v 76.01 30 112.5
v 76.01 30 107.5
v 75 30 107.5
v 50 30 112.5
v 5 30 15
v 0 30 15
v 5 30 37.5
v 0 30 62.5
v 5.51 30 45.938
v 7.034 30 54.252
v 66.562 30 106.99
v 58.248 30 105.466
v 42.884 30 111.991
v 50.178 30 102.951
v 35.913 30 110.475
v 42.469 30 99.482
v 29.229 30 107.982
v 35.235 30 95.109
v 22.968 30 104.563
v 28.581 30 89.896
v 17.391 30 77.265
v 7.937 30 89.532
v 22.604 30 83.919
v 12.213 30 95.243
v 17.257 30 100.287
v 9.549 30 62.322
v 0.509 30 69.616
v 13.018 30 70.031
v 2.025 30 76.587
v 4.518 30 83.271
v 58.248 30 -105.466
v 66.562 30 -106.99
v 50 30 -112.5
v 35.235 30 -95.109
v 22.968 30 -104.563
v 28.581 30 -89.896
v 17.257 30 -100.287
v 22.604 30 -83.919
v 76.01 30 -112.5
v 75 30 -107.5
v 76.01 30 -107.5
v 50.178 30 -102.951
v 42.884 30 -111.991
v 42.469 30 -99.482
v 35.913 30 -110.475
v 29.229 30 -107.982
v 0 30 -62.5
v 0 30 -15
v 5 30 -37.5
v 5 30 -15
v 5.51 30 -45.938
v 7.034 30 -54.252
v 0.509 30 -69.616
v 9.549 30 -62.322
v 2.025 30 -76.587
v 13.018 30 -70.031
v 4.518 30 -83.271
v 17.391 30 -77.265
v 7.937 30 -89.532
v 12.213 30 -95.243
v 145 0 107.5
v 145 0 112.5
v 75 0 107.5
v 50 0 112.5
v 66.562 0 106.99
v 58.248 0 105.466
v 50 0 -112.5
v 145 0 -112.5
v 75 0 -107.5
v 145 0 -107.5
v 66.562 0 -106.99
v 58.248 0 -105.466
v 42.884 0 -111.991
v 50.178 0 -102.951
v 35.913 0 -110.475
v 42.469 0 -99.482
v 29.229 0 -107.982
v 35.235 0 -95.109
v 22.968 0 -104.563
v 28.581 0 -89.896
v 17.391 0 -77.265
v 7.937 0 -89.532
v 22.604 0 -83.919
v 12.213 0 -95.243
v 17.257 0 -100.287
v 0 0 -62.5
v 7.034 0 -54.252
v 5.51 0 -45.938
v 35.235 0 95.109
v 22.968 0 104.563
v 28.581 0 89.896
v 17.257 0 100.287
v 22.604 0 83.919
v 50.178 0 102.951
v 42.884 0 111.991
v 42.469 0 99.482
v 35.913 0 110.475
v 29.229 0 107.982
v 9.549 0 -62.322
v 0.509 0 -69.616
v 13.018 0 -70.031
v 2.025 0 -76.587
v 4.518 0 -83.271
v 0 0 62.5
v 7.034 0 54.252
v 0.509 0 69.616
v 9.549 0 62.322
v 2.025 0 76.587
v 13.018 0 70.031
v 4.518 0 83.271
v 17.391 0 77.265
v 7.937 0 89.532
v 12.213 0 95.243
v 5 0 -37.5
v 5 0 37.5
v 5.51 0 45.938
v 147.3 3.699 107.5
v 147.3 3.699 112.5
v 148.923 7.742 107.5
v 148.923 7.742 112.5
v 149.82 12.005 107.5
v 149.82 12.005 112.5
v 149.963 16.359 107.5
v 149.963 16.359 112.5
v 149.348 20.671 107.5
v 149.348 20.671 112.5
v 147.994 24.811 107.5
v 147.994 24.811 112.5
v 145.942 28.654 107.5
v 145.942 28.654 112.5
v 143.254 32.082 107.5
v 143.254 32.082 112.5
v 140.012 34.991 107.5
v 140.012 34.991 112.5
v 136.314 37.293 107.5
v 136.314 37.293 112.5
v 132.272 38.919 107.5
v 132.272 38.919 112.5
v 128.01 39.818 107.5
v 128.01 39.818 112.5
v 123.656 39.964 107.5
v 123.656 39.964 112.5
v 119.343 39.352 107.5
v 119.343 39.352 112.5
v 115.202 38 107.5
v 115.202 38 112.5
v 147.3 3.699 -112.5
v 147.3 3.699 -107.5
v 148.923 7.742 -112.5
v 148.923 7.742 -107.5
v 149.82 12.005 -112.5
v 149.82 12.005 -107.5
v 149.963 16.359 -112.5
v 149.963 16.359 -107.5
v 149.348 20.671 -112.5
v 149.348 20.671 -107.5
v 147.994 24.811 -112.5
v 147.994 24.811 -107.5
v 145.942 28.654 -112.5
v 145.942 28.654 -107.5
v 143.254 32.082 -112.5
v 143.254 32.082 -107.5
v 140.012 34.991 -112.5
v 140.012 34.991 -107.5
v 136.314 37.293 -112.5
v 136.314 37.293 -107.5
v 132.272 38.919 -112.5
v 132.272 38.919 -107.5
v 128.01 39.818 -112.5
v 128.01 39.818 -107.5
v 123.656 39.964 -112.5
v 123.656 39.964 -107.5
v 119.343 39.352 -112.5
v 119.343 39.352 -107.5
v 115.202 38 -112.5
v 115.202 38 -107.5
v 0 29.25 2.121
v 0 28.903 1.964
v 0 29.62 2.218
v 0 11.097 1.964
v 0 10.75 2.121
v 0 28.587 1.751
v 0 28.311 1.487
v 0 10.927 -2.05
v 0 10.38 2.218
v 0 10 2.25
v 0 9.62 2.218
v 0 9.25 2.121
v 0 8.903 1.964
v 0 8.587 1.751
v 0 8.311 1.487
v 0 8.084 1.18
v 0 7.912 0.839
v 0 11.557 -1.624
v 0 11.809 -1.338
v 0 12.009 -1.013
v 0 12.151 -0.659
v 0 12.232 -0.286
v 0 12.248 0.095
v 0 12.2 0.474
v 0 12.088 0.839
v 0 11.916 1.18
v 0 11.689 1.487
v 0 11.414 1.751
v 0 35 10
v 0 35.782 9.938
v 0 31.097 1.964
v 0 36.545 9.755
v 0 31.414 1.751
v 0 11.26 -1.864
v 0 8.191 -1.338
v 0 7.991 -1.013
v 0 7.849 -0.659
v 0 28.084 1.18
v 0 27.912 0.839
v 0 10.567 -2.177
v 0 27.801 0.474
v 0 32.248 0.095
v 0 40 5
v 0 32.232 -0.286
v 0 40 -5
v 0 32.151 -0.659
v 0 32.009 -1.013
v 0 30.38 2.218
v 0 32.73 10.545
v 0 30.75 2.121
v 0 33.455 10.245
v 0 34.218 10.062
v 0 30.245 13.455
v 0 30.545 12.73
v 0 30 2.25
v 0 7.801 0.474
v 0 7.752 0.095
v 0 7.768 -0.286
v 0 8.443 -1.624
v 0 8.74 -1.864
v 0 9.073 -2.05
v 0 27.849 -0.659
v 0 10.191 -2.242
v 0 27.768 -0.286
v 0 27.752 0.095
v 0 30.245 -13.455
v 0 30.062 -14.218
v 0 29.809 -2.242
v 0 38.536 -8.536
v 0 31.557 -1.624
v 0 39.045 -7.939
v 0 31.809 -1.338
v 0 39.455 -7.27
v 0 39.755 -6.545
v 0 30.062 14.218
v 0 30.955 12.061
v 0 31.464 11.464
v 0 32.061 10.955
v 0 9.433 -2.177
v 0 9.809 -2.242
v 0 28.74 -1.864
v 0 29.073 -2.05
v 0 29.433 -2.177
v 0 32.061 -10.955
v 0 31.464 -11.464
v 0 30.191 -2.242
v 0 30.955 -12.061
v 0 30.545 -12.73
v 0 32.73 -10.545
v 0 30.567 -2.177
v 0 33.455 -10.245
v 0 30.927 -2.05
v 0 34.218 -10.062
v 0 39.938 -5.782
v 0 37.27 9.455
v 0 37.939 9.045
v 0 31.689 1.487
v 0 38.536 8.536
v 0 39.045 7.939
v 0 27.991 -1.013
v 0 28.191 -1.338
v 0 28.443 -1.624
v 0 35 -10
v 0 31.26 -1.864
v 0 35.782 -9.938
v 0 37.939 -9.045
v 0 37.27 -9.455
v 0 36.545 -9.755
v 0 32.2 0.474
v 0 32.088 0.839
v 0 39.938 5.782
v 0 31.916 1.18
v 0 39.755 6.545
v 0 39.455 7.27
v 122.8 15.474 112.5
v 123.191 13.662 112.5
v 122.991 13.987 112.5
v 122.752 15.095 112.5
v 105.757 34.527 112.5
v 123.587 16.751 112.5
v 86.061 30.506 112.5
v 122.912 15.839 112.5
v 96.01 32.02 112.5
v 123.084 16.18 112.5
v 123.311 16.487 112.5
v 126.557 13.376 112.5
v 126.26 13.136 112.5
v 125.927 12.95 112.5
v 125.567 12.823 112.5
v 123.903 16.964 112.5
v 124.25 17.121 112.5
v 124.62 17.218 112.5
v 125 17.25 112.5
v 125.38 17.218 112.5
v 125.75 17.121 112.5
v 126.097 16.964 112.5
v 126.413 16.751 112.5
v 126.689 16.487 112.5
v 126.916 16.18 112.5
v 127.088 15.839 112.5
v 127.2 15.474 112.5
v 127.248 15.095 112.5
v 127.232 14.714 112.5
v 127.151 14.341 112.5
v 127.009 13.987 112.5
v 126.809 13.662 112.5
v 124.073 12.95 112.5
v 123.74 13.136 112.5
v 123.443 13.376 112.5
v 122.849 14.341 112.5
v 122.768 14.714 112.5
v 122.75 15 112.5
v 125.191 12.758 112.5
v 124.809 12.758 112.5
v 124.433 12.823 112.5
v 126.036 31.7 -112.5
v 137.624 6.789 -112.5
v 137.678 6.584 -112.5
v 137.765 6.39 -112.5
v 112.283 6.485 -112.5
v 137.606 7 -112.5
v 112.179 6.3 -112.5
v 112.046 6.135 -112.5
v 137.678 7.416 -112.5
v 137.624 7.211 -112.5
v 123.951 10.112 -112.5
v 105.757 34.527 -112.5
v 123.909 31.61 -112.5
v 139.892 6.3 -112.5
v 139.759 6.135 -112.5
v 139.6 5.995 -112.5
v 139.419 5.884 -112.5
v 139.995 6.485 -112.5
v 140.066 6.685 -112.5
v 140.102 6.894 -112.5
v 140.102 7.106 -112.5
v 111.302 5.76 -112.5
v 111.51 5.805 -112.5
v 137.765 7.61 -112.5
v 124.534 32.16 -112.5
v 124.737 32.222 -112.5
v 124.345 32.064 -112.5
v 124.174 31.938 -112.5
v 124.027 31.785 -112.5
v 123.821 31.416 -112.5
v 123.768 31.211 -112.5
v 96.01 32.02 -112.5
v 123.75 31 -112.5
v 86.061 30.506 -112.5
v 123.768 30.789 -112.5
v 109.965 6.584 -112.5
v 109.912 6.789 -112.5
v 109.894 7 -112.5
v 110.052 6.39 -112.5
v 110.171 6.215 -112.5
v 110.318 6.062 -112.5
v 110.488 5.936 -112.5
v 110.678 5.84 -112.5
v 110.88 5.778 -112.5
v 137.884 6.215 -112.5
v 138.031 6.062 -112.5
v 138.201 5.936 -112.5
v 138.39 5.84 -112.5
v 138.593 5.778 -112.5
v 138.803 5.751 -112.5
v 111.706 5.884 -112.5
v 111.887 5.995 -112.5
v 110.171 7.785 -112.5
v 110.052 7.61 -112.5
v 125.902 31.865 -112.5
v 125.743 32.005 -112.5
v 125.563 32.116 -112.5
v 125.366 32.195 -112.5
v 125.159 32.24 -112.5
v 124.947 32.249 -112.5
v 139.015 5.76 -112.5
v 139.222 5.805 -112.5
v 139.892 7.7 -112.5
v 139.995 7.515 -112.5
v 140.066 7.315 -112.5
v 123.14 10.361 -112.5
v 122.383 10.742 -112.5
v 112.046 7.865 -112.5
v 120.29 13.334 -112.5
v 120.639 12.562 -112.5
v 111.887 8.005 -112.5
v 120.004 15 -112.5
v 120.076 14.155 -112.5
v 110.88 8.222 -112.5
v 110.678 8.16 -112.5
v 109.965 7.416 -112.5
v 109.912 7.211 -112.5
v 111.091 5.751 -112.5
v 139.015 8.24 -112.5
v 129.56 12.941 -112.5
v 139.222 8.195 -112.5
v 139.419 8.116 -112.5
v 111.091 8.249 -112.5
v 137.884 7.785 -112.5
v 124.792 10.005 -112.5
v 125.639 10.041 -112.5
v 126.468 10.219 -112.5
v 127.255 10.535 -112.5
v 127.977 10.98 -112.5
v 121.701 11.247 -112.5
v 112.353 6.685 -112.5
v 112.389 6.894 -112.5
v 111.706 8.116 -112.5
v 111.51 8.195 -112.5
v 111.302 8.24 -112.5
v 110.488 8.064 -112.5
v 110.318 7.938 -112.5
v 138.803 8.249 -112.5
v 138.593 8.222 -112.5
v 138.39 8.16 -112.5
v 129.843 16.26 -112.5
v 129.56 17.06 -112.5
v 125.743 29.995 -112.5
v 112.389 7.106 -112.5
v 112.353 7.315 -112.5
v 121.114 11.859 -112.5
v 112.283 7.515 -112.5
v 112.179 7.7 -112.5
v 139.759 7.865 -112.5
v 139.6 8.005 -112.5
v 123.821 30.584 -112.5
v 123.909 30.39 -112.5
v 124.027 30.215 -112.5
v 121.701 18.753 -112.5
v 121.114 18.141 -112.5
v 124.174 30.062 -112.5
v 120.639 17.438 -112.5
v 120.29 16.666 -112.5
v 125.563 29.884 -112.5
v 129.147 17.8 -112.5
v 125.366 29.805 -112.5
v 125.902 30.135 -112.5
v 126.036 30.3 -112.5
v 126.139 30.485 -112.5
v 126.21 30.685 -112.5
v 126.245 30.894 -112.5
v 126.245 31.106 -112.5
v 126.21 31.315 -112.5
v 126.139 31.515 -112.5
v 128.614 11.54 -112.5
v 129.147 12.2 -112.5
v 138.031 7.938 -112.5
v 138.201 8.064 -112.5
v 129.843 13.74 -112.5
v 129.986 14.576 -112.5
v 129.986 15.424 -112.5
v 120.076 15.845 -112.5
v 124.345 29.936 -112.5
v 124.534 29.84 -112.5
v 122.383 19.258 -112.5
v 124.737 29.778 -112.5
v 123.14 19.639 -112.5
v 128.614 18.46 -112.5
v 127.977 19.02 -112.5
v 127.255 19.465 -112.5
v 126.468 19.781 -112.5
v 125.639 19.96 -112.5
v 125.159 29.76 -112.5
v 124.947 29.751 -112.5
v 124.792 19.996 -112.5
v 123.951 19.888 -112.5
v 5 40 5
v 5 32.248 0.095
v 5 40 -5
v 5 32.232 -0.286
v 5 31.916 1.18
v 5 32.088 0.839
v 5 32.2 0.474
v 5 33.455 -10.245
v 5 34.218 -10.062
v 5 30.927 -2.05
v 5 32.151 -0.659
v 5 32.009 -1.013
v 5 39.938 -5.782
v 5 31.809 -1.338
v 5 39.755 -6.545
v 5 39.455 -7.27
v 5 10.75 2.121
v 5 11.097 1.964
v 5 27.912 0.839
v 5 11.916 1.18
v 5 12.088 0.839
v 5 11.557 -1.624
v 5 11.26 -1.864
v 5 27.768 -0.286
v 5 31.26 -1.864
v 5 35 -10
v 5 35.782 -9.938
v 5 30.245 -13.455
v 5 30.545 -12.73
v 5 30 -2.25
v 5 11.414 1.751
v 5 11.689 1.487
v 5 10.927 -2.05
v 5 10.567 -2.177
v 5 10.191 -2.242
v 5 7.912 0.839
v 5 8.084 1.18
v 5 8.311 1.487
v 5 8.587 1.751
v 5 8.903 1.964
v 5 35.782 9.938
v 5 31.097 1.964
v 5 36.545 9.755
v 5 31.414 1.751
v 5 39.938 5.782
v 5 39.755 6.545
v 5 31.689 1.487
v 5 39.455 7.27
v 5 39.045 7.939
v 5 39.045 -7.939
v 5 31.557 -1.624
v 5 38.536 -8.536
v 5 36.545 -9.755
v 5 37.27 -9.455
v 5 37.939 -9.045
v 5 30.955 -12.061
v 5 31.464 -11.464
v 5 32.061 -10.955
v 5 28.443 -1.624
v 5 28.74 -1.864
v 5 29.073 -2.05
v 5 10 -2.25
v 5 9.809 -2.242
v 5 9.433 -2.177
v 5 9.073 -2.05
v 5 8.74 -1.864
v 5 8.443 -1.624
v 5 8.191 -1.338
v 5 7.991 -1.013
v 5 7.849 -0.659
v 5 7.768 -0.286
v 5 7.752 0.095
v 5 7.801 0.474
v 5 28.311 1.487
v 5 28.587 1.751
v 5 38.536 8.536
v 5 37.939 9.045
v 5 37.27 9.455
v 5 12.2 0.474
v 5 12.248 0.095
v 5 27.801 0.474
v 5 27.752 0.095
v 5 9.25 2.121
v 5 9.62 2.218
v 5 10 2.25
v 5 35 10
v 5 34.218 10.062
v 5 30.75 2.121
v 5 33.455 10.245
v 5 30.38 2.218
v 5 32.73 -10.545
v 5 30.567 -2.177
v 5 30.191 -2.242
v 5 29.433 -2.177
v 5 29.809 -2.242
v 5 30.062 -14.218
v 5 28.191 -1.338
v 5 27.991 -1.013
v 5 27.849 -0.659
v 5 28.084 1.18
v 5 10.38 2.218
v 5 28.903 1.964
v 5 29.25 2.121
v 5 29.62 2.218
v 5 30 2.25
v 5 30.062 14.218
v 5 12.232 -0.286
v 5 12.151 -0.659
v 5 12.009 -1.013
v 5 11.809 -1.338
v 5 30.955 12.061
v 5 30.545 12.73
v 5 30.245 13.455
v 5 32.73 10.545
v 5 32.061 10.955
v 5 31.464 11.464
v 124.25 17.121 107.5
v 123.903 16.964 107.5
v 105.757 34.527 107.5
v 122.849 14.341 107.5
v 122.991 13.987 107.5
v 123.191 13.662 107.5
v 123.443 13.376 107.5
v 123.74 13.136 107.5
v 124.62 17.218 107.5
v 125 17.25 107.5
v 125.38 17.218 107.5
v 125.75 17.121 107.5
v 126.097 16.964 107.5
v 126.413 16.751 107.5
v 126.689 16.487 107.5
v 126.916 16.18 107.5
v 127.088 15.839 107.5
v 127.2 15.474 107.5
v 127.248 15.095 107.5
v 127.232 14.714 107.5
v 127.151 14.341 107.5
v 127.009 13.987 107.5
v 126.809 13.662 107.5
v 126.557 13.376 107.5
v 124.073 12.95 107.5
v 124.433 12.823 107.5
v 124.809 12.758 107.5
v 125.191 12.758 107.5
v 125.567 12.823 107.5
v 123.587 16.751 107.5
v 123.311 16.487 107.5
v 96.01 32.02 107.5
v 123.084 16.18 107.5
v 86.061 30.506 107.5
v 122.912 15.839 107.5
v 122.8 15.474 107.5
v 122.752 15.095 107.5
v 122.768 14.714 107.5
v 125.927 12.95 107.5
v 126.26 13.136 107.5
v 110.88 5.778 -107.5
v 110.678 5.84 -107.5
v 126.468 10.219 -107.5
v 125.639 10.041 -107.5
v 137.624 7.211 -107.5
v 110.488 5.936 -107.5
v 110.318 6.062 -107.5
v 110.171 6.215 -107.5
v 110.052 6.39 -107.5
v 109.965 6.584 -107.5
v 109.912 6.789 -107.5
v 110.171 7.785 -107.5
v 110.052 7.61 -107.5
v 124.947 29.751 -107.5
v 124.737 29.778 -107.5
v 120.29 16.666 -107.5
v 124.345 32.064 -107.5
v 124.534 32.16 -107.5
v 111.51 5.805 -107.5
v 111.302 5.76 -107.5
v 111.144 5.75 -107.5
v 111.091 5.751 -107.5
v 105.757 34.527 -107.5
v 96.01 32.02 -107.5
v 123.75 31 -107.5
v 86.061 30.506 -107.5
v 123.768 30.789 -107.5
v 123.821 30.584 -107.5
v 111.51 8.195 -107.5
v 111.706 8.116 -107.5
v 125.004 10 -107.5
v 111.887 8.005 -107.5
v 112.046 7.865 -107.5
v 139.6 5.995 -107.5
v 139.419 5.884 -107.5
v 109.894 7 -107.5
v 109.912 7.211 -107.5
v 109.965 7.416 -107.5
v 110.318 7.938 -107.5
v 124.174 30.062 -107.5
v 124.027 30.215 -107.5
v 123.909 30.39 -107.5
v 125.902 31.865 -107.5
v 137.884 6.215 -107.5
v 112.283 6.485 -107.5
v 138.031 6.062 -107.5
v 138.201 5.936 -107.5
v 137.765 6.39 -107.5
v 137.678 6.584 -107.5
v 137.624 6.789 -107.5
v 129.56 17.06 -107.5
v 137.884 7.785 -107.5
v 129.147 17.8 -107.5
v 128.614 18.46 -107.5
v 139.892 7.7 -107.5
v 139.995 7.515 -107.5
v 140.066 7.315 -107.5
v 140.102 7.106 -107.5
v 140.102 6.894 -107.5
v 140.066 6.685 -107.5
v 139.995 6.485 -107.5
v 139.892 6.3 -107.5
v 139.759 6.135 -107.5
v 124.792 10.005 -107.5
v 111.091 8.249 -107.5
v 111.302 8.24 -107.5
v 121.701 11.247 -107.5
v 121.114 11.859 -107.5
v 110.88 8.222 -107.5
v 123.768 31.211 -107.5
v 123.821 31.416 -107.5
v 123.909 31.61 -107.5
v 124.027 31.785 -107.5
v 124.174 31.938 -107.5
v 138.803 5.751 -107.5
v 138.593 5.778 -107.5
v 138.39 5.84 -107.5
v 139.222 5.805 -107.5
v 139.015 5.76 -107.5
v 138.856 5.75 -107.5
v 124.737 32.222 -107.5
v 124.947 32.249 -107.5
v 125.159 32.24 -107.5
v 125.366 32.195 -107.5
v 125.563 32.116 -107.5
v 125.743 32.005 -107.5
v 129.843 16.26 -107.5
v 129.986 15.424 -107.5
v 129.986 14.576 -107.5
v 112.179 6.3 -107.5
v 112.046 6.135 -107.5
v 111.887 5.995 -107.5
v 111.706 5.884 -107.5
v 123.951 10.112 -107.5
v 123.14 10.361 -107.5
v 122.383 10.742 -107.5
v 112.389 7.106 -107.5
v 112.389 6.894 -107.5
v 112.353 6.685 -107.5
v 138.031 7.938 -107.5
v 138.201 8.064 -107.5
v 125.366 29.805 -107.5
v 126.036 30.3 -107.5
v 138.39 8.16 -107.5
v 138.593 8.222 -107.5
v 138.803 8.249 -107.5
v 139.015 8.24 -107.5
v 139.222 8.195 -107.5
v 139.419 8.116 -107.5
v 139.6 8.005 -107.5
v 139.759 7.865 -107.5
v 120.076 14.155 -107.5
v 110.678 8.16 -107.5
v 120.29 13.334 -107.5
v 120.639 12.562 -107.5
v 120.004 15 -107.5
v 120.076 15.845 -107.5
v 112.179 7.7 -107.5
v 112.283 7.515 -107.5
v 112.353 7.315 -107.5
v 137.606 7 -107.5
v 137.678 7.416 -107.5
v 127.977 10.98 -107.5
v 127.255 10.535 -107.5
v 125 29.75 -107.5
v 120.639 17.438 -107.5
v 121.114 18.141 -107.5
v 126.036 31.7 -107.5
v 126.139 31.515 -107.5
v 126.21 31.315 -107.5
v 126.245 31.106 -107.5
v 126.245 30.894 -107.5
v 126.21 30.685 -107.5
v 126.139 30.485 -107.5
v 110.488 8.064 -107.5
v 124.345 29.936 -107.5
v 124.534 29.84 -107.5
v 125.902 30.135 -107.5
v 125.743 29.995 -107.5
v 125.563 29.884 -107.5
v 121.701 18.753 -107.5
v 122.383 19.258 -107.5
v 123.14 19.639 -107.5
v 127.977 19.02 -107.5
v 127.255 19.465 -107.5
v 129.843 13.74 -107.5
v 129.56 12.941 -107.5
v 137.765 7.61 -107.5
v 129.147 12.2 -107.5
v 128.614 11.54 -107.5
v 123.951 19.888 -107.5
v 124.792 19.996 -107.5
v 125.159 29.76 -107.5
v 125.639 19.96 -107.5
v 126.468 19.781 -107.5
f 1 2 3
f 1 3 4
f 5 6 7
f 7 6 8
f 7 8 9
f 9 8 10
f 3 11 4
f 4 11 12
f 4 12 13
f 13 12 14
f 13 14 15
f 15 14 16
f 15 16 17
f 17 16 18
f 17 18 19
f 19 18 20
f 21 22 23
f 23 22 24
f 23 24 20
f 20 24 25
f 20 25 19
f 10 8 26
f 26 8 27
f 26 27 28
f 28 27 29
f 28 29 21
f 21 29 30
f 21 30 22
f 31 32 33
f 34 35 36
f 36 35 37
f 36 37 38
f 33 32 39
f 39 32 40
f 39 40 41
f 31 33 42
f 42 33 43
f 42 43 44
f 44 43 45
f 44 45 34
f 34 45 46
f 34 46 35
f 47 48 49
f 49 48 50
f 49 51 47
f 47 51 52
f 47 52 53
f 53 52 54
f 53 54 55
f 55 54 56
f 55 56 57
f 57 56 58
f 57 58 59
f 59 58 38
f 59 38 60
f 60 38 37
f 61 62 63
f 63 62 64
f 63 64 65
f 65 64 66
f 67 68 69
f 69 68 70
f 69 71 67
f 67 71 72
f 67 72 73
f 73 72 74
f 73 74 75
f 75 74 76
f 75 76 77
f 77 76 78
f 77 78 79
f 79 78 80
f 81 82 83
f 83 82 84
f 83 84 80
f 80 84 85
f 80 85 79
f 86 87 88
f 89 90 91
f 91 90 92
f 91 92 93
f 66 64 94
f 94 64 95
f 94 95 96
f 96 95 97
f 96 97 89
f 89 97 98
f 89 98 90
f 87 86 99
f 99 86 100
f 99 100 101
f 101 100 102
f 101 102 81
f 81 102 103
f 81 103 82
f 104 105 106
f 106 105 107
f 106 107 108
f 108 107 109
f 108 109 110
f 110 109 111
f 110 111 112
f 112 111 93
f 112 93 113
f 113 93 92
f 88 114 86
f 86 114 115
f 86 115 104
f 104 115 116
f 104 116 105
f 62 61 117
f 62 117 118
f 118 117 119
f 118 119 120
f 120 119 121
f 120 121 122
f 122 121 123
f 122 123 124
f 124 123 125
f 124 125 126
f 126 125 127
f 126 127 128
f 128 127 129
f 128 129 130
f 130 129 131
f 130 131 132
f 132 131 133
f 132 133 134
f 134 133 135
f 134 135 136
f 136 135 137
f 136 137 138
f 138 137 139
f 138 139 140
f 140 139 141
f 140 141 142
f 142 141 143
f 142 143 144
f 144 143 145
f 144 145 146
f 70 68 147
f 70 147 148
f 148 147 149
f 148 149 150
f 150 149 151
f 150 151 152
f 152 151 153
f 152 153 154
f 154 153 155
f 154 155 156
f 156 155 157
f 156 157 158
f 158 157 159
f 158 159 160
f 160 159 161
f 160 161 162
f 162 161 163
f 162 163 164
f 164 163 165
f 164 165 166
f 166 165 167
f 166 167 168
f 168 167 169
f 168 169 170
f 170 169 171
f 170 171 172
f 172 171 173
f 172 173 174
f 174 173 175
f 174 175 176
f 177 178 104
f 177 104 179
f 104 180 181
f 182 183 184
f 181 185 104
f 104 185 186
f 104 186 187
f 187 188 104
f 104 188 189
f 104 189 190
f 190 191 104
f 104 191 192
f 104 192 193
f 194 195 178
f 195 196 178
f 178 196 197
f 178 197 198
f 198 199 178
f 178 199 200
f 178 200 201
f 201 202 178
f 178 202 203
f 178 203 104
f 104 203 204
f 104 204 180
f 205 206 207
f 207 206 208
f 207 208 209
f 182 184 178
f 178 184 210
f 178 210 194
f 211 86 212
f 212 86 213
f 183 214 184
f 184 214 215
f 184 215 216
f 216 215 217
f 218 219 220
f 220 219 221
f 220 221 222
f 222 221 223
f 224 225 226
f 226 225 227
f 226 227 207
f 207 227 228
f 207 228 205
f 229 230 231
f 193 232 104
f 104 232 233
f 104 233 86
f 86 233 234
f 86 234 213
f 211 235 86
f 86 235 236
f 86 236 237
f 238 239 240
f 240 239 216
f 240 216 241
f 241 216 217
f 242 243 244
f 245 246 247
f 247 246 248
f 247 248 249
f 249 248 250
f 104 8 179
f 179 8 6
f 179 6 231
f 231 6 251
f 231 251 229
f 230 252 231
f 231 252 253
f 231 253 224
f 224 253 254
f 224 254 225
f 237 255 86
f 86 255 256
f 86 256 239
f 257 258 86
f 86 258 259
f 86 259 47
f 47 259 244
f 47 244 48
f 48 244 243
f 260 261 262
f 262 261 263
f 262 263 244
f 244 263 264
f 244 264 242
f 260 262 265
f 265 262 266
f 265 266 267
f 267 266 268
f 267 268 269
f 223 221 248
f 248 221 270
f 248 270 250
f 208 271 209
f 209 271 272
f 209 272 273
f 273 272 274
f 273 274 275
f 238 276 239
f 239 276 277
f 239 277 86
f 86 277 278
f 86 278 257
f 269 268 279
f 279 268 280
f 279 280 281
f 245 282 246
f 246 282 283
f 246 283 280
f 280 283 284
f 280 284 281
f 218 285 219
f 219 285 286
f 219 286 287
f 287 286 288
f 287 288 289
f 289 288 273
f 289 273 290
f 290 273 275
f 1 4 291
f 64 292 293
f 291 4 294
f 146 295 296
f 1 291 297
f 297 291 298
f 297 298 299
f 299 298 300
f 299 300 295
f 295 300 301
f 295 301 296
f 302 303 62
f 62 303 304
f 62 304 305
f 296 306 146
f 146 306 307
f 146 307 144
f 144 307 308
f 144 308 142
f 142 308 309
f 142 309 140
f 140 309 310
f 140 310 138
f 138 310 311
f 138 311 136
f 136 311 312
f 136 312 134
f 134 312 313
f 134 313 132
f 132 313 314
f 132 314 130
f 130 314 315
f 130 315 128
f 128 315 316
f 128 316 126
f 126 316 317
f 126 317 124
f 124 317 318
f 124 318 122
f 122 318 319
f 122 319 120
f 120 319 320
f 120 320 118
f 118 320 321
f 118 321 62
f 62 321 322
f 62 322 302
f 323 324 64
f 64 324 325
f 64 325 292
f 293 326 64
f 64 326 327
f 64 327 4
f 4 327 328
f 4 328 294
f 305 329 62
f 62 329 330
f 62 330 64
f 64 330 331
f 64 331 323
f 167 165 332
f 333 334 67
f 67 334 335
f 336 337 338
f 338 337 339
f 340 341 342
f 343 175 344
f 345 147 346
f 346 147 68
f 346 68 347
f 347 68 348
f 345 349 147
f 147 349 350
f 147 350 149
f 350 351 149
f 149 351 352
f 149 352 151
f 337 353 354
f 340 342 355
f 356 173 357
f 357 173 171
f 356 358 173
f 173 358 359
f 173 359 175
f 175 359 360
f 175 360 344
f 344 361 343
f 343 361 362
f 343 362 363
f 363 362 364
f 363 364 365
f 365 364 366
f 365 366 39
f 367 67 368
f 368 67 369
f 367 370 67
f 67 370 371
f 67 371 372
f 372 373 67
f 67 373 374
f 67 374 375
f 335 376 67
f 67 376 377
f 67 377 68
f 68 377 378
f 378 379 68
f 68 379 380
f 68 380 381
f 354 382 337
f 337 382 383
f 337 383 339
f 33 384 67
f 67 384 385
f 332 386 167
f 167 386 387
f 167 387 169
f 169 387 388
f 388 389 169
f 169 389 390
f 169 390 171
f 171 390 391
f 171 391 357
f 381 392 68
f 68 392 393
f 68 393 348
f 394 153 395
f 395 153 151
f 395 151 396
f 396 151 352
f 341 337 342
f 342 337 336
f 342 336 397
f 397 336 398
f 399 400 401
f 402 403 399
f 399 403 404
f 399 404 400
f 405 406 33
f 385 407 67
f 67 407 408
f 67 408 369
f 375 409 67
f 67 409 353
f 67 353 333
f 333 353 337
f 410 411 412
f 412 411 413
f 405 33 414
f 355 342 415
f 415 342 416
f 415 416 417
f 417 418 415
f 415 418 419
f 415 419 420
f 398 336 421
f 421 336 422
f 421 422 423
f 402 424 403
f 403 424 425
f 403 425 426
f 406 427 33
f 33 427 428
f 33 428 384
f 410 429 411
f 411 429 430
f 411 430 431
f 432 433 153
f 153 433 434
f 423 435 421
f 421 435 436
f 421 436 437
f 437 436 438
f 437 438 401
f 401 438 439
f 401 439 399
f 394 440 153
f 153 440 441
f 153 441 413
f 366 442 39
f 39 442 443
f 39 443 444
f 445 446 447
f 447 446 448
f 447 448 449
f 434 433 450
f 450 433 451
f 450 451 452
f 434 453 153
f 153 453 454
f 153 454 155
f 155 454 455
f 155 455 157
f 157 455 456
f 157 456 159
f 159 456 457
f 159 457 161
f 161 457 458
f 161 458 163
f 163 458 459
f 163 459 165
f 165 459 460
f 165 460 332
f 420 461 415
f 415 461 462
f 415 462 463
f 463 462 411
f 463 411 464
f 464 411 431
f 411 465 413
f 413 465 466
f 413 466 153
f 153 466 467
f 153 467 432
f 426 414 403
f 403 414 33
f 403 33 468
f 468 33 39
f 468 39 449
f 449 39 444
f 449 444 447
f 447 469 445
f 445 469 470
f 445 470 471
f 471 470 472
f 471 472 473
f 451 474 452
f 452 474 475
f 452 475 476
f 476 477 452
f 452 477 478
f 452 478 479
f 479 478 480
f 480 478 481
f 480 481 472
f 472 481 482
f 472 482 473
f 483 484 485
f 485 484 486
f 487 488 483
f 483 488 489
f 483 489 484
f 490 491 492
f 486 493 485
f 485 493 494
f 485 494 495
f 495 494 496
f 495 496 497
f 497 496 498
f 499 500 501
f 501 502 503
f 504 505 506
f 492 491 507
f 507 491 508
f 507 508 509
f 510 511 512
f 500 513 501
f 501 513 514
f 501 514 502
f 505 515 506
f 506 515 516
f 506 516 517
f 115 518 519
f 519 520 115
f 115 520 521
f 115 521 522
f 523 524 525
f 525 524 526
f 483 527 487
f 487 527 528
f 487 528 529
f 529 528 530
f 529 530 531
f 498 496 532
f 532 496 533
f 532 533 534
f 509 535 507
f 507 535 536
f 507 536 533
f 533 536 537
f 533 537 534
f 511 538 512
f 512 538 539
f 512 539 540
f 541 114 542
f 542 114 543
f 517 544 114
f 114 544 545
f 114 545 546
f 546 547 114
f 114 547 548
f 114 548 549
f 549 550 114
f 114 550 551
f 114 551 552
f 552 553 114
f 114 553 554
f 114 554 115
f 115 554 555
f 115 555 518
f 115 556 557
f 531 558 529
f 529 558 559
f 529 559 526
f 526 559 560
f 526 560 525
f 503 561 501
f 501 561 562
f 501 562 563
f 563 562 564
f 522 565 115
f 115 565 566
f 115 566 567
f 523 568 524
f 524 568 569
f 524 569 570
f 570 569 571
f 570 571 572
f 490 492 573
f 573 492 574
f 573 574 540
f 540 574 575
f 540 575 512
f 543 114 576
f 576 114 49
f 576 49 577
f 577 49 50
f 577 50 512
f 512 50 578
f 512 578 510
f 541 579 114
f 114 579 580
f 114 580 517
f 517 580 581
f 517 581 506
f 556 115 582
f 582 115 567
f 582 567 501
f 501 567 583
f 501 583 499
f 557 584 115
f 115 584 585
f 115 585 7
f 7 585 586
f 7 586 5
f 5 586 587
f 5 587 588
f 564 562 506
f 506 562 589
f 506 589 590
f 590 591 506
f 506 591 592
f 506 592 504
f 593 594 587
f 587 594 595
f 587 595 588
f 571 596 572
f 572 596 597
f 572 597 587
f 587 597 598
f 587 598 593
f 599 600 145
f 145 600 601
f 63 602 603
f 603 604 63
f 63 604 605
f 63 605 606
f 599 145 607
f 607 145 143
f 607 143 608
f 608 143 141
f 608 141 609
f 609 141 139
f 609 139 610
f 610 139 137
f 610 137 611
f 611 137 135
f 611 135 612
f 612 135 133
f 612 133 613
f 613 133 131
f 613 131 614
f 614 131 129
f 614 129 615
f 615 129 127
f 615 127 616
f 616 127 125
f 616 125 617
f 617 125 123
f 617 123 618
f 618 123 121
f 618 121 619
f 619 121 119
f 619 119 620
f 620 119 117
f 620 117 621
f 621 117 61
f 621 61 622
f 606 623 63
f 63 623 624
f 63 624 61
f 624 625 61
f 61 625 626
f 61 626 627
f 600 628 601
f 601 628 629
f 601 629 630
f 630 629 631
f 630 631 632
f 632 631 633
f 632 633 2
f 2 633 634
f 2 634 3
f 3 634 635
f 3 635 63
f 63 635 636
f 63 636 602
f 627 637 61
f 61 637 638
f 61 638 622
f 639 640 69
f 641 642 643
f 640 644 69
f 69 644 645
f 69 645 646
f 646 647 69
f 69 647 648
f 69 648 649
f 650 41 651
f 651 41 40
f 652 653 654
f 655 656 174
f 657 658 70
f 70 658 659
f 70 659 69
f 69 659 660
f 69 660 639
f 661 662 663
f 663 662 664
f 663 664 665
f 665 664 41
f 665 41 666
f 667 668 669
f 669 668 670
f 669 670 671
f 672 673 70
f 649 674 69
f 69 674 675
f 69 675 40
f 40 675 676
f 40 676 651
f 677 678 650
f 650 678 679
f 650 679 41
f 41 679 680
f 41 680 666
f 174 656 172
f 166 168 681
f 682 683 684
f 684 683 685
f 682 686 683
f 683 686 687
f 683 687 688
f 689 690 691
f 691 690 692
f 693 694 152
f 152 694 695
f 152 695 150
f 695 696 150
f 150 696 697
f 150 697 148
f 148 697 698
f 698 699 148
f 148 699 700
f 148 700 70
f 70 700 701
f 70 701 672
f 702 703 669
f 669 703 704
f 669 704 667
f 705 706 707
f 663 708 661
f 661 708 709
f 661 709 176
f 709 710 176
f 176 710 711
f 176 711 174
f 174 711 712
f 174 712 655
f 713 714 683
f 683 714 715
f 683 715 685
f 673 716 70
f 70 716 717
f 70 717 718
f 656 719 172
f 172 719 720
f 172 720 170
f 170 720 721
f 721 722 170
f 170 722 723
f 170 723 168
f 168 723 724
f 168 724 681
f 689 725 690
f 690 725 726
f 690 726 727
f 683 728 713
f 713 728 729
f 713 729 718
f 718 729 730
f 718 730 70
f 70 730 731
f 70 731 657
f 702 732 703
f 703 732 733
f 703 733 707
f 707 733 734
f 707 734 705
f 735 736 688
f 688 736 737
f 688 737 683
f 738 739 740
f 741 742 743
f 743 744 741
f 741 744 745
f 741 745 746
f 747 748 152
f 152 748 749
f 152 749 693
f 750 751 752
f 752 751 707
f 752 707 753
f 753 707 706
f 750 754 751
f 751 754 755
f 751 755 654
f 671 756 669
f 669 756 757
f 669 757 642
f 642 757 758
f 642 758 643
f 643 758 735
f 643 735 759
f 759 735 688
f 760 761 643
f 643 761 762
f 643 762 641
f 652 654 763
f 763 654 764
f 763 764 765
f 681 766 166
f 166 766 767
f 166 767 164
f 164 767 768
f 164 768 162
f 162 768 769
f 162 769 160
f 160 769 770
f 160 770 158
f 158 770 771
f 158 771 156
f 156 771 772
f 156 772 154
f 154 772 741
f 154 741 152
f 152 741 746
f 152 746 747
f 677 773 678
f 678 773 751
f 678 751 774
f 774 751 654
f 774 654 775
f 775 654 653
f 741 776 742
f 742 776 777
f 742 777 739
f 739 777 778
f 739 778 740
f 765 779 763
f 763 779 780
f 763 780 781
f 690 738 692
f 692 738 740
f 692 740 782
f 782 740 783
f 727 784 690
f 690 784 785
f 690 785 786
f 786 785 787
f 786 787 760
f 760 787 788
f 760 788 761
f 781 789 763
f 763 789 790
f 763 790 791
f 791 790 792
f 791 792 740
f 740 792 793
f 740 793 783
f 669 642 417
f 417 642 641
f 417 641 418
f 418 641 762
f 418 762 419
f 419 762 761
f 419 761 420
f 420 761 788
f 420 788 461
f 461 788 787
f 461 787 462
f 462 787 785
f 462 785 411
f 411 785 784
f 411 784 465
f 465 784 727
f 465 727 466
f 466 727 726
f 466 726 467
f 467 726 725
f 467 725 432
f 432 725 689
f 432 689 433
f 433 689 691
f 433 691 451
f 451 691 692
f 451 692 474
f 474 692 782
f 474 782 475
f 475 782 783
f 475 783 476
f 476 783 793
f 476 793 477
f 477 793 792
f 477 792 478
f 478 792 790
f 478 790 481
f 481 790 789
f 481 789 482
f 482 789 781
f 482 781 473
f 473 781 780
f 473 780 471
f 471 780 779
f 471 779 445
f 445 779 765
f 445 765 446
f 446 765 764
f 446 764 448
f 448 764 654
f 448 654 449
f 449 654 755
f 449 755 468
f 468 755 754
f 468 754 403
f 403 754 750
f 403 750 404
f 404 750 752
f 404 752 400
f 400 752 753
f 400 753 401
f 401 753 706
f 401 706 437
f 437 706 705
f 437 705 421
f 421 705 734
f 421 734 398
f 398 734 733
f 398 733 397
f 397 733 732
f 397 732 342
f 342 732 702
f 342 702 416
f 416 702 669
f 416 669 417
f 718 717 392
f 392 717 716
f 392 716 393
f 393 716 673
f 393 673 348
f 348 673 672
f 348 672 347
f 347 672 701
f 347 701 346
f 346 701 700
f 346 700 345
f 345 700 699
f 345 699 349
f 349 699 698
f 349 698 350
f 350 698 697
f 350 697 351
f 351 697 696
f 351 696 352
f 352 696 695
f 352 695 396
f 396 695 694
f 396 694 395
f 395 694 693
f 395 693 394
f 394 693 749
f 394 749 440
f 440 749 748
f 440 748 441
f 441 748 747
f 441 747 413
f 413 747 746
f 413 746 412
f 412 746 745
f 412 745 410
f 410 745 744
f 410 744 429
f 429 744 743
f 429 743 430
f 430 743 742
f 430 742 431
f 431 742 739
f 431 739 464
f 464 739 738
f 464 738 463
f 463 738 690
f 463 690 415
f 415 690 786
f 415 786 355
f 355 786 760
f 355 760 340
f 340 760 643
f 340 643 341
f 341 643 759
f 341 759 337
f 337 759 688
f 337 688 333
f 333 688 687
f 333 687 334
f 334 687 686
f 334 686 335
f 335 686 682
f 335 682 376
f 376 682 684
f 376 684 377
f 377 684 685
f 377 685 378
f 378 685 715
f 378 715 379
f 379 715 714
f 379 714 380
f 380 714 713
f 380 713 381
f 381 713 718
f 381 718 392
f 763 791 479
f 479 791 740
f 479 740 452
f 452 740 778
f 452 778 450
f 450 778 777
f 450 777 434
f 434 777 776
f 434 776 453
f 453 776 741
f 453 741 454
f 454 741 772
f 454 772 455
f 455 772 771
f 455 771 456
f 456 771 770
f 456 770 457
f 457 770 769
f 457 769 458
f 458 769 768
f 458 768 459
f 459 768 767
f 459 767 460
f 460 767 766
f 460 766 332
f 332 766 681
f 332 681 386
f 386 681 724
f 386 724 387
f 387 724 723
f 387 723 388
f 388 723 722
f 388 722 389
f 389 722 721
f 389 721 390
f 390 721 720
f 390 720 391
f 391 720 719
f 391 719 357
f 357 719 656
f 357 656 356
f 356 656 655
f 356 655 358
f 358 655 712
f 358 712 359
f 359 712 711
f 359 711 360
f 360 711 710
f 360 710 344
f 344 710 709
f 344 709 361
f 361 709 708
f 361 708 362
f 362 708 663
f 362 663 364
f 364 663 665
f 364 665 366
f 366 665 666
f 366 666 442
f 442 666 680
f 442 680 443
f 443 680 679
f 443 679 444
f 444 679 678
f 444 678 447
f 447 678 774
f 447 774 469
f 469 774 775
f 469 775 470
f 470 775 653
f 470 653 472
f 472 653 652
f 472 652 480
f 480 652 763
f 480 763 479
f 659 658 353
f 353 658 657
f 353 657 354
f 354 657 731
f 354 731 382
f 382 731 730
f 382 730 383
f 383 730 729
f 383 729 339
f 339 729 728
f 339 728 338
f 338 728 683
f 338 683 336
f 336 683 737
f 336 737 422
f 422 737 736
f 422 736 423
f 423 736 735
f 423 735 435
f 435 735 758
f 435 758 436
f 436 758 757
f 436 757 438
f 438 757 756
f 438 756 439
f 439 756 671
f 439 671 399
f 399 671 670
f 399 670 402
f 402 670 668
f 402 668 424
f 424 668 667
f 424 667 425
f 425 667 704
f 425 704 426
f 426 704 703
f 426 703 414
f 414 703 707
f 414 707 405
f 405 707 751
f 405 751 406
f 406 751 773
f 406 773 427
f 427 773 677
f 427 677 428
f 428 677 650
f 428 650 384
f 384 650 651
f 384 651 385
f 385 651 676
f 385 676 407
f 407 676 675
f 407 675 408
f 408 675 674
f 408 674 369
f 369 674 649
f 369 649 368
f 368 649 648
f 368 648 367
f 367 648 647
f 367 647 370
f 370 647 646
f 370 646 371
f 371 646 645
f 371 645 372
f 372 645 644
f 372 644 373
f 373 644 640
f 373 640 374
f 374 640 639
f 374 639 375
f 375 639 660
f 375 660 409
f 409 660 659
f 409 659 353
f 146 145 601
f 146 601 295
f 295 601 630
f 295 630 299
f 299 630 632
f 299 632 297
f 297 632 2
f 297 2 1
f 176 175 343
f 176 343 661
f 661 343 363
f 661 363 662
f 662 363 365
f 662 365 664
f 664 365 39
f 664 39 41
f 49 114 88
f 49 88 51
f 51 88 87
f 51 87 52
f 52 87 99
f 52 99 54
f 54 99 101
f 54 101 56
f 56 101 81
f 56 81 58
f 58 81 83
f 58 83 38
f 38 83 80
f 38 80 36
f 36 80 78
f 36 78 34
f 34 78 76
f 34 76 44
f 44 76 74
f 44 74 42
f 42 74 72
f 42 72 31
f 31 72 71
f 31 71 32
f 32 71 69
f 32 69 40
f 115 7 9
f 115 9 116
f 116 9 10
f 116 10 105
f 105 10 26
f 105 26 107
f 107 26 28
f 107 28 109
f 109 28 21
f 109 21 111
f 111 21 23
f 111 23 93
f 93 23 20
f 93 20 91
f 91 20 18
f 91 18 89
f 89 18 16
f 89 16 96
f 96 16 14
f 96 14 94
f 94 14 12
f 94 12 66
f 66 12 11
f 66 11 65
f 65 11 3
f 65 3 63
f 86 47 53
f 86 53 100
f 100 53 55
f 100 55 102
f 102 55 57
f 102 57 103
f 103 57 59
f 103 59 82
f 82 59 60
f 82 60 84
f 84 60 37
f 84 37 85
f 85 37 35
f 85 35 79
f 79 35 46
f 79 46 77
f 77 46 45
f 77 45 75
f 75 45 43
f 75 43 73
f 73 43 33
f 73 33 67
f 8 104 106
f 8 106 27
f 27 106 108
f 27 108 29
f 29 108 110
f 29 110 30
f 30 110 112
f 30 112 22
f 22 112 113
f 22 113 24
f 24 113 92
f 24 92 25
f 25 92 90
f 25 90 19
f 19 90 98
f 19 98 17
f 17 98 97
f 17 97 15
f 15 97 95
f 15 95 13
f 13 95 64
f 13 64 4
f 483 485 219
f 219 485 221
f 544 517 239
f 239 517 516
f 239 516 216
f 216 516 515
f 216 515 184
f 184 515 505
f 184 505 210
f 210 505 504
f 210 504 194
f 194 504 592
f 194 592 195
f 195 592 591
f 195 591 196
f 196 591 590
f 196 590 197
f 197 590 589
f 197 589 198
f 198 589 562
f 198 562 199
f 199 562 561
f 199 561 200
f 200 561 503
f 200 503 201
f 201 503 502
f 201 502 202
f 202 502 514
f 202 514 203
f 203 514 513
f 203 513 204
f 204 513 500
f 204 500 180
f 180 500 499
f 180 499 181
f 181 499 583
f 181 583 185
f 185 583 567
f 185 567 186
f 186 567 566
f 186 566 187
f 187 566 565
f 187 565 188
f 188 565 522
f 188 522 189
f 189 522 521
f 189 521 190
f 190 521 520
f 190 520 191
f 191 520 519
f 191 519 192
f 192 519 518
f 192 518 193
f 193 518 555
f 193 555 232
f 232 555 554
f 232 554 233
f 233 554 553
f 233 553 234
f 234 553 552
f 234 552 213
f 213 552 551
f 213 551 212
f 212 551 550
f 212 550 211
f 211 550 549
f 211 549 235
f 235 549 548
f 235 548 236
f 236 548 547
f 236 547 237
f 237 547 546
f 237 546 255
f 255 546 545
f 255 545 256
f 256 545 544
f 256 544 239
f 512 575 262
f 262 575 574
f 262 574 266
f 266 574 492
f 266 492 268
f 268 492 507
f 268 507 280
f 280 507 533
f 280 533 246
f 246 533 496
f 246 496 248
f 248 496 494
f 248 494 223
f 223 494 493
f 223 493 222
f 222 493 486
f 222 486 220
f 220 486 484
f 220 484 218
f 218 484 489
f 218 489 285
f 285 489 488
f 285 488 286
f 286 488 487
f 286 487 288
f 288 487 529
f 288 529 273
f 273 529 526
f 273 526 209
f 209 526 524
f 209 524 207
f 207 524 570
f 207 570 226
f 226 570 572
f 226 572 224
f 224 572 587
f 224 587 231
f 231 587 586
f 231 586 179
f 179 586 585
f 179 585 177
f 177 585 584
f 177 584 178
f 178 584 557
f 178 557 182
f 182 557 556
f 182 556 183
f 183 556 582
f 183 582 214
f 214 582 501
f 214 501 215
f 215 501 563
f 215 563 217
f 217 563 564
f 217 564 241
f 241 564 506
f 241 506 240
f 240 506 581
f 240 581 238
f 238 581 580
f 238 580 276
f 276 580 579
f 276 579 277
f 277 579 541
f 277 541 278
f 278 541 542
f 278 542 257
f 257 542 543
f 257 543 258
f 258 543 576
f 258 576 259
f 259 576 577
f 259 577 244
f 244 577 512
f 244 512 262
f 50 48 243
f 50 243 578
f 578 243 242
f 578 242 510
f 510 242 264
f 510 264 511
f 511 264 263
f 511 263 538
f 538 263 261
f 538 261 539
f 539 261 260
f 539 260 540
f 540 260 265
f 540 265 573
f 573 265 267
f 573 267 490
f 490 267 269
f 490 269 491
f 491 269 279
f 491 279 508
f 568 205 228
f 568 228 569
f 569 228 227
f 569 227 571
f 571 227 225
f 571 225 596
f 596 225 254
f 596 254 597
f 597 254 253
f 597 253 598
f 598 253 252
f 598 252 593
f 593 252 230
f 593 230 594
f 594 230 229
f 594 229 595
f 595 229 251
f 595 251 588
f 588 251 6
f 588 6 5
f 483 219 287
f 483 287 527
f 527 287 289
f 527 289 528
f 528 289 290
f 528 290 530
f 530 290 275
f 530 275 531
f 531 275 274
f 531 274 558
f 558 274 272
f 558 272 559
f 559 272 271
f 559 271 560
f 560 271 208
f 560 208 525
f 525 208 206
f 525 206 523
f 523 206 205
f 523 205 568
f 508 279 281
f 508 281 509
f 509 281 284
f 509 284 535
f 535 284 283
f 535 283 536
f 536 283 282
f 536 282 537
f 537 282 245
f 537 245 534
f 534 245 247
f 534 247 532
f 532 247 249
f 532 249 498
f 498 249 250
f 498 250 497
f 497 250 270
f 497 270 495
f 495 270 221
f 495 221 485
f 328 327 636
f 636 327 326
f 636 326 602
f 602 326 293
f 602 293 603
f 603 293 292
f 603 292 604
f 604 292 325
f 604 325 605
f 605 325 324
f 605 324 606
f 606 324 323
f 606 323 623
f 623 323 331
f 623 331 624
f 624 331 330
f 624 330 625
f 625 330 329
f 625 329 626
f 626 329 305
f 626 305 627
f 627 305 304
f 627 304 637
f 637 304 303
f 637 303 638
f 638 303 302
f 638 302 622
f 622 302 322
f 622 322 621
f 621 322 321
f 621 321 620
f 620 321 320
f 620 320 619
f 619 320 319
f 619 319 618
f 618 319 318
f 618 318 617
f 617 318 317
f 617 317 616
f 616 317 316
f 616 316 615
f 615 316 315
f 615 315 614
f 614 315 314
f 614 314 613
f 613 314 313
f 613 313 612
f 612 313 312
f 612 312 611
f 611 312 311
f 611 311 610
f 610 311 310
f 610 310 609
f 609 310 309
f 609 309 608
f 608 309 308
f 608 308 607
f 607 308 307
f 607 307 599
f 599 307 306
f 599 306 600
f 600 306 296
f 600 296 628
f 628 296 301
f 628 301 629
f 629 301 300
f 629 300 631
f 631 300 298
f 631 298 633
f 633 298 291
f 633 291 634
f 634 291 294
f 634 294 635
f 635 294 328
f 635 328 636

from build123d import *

# Parameters (mm, degrees)
SKETCH1_W           = 125
SKETCH1_H           = 30
BOSS_EXTRUDE1_DEPTH = 112.5
BOSS_EXTRUDE2_DEPTH = 112.5
CUT_EXTRUDE2_START  = 5
SKETCH4_W           = 215
SKETCH4_H           = 59.703545047
CUT_EXTRUDE2_DEPTH  = 160
SKETCH5_R           = 1.25
SKETCH5_R_2         = 5
CUT_EXTRUDE3_DEPTH  = 10
FILLET1_R           = 100
FILLET2_R           = 70
FILLET3_R           = 50
SKETCH7_W           = 20
SKETCH7_H           = 10
BOSS_EXTRUDE3_DEPTH = 5
SKETCH6_R           = 2.25
CUT_EXTRUDE4_DEPTH  = 10
FILLET4_R           = 5
FILLET5_R           = 5
SKETCH8_R           = 2.25
CUT_EXTRUDE5_DEPTH  = 5


with BuildPart() as part:
    # Sketch1 → Boss-Extrude1 (new, symmetric)
    with BuildSketch(Plane.XY):
        with Locations((62.5, 15)):
            Rectangle(SKETCH1_W, SKETCH1_H)
    extrude(amount=BOSS_EXTRUDE1_DEPTH, both=True)

    # Sketch2 → Boss-Extrude2 (add, symmetric)
    with BuildSketch(Plane.XY):
        with BuildLine():
            Line((105, 0), (145, 0))
            ThreePointArc((145, 0), (125, 40), (105, 0))
        make_face()
    extrude(amount=BOSS_EXTRUDE2_DEPTH, both=True)

    # Sketch4 → Cut-Extrude2 (cut)
    with BuildSketch(Plane(origin=(0, 0, 0), x_dir=(0, 0, -1), z_dir=(1, 0, 0)).offset(CUT_EXTRUDE2_START)):
        with Locations((0, 25.910589708)):
            Rectangle(SKETCH4_W, SKETCH4_H)
    extrude(amount=CUT_EXTRUDE2_DEPTH, mode=Mode.SUBTRACT)

    # Sketch5 → Cut-Extrude3 (cut)
    with BuildSketch(Plane(origin=(0, 0, -112.5), x_dir=(-1, 0, 0), z_dir=(0, 0, -1))):
        with Locations((-138.856406461, 7)):
            Circle(SKETCH5_R)
        with Locations((-125, 31)):
            Circle(SKETCH5_R)
        with Locations((-111.143593539, 7)):
            Circle(SKETCH5_R)
        with Locations((-125.004149617, 15)):
            Circle(SKETCH5_R_2)
    extrude(amount=-CUT_EXTRUDE3_DEPTH, mode=Mode.SUBTRACT)

    # Fillet1
    fillet1_edges = [part.edges().sort_by_distance(p)[0] for p in [
        (105, 30, -110),
        (105, 30, 110),
    ]]
    fillet(fillet1_edges, radius=FILLET1_R)

    # Fillet2
    fillet2_edges = [part.edges().sort_by_distance(p)[0] for p in [
        (5, 15, 107.5),
        (5, 15, -107.5),
    ]]
    fillet(fillet2_edges, radius=FILLET2_R)

    # Fillet3
    fillet3_edges = [part.edges().sort_by_distance(p)[0] for p in [
        (0, 15, 112.5),
        (0, 15, -112.5),
    ]]
    fillet(fillet3_edges, radius=FILLET3_R)

    # Sketch7 → Boss-Extrude3 (add)
    with BuildSketch(Plane.ZY):
        with Locations((0, 35)):
            Rectangle(SKETCH7_W, SKETCH7_H)
    extrude(amount=-BOSS_EXTRUDE3_DEPTH)

    # Sketch6 → Cut-Extrude4 (cut)
    with BuildSketch(Plane.ZY):
        with Locations((0, 10)):
            Circle(SKETCH6_R)
        with Locations((0, 30)):
            Circle(SKETCH6_R)
    extrude(amount=-CUT_EXTRUDE4_DEPTH, mode=Mode.SUBTRACT)

    # Fillet4
    fillet4_edges = [part.edges().sort_by_distance(p)[0] for p in [
        (2.5, 30, 10),
        (2.5, 30, -10),
    ]]
    fillet(fillet4_edges, radius=FILLET4_R)

    # Fillet5
    fillet5_edges = [part.edges().sort_by_distance(p)[0] for p in [
        (2.5, 40, 10),
        (2.5, 40, -10),
    ]]
    fillet(fillet5_edges, radius=FILLET5_R - 0.0001)  # a hair under: the kernel refuses the full size

    # Sketch8 → Cut-Extrude5 (cut)
    with BuildSketch(Plane(origin=(0, 0, 107.5), x_dir=(-1, 0, 0), z_dir=(0, 0, -1))):
        with Locations(Location((-125, 15, 0), (0, 0, 90))):
            Circle(SKETCH8_R)
    extrude(amount=-CUT_EXTRUDE5_DEPTH, mode=Mode.SUBTRACT)


solid = part.part
